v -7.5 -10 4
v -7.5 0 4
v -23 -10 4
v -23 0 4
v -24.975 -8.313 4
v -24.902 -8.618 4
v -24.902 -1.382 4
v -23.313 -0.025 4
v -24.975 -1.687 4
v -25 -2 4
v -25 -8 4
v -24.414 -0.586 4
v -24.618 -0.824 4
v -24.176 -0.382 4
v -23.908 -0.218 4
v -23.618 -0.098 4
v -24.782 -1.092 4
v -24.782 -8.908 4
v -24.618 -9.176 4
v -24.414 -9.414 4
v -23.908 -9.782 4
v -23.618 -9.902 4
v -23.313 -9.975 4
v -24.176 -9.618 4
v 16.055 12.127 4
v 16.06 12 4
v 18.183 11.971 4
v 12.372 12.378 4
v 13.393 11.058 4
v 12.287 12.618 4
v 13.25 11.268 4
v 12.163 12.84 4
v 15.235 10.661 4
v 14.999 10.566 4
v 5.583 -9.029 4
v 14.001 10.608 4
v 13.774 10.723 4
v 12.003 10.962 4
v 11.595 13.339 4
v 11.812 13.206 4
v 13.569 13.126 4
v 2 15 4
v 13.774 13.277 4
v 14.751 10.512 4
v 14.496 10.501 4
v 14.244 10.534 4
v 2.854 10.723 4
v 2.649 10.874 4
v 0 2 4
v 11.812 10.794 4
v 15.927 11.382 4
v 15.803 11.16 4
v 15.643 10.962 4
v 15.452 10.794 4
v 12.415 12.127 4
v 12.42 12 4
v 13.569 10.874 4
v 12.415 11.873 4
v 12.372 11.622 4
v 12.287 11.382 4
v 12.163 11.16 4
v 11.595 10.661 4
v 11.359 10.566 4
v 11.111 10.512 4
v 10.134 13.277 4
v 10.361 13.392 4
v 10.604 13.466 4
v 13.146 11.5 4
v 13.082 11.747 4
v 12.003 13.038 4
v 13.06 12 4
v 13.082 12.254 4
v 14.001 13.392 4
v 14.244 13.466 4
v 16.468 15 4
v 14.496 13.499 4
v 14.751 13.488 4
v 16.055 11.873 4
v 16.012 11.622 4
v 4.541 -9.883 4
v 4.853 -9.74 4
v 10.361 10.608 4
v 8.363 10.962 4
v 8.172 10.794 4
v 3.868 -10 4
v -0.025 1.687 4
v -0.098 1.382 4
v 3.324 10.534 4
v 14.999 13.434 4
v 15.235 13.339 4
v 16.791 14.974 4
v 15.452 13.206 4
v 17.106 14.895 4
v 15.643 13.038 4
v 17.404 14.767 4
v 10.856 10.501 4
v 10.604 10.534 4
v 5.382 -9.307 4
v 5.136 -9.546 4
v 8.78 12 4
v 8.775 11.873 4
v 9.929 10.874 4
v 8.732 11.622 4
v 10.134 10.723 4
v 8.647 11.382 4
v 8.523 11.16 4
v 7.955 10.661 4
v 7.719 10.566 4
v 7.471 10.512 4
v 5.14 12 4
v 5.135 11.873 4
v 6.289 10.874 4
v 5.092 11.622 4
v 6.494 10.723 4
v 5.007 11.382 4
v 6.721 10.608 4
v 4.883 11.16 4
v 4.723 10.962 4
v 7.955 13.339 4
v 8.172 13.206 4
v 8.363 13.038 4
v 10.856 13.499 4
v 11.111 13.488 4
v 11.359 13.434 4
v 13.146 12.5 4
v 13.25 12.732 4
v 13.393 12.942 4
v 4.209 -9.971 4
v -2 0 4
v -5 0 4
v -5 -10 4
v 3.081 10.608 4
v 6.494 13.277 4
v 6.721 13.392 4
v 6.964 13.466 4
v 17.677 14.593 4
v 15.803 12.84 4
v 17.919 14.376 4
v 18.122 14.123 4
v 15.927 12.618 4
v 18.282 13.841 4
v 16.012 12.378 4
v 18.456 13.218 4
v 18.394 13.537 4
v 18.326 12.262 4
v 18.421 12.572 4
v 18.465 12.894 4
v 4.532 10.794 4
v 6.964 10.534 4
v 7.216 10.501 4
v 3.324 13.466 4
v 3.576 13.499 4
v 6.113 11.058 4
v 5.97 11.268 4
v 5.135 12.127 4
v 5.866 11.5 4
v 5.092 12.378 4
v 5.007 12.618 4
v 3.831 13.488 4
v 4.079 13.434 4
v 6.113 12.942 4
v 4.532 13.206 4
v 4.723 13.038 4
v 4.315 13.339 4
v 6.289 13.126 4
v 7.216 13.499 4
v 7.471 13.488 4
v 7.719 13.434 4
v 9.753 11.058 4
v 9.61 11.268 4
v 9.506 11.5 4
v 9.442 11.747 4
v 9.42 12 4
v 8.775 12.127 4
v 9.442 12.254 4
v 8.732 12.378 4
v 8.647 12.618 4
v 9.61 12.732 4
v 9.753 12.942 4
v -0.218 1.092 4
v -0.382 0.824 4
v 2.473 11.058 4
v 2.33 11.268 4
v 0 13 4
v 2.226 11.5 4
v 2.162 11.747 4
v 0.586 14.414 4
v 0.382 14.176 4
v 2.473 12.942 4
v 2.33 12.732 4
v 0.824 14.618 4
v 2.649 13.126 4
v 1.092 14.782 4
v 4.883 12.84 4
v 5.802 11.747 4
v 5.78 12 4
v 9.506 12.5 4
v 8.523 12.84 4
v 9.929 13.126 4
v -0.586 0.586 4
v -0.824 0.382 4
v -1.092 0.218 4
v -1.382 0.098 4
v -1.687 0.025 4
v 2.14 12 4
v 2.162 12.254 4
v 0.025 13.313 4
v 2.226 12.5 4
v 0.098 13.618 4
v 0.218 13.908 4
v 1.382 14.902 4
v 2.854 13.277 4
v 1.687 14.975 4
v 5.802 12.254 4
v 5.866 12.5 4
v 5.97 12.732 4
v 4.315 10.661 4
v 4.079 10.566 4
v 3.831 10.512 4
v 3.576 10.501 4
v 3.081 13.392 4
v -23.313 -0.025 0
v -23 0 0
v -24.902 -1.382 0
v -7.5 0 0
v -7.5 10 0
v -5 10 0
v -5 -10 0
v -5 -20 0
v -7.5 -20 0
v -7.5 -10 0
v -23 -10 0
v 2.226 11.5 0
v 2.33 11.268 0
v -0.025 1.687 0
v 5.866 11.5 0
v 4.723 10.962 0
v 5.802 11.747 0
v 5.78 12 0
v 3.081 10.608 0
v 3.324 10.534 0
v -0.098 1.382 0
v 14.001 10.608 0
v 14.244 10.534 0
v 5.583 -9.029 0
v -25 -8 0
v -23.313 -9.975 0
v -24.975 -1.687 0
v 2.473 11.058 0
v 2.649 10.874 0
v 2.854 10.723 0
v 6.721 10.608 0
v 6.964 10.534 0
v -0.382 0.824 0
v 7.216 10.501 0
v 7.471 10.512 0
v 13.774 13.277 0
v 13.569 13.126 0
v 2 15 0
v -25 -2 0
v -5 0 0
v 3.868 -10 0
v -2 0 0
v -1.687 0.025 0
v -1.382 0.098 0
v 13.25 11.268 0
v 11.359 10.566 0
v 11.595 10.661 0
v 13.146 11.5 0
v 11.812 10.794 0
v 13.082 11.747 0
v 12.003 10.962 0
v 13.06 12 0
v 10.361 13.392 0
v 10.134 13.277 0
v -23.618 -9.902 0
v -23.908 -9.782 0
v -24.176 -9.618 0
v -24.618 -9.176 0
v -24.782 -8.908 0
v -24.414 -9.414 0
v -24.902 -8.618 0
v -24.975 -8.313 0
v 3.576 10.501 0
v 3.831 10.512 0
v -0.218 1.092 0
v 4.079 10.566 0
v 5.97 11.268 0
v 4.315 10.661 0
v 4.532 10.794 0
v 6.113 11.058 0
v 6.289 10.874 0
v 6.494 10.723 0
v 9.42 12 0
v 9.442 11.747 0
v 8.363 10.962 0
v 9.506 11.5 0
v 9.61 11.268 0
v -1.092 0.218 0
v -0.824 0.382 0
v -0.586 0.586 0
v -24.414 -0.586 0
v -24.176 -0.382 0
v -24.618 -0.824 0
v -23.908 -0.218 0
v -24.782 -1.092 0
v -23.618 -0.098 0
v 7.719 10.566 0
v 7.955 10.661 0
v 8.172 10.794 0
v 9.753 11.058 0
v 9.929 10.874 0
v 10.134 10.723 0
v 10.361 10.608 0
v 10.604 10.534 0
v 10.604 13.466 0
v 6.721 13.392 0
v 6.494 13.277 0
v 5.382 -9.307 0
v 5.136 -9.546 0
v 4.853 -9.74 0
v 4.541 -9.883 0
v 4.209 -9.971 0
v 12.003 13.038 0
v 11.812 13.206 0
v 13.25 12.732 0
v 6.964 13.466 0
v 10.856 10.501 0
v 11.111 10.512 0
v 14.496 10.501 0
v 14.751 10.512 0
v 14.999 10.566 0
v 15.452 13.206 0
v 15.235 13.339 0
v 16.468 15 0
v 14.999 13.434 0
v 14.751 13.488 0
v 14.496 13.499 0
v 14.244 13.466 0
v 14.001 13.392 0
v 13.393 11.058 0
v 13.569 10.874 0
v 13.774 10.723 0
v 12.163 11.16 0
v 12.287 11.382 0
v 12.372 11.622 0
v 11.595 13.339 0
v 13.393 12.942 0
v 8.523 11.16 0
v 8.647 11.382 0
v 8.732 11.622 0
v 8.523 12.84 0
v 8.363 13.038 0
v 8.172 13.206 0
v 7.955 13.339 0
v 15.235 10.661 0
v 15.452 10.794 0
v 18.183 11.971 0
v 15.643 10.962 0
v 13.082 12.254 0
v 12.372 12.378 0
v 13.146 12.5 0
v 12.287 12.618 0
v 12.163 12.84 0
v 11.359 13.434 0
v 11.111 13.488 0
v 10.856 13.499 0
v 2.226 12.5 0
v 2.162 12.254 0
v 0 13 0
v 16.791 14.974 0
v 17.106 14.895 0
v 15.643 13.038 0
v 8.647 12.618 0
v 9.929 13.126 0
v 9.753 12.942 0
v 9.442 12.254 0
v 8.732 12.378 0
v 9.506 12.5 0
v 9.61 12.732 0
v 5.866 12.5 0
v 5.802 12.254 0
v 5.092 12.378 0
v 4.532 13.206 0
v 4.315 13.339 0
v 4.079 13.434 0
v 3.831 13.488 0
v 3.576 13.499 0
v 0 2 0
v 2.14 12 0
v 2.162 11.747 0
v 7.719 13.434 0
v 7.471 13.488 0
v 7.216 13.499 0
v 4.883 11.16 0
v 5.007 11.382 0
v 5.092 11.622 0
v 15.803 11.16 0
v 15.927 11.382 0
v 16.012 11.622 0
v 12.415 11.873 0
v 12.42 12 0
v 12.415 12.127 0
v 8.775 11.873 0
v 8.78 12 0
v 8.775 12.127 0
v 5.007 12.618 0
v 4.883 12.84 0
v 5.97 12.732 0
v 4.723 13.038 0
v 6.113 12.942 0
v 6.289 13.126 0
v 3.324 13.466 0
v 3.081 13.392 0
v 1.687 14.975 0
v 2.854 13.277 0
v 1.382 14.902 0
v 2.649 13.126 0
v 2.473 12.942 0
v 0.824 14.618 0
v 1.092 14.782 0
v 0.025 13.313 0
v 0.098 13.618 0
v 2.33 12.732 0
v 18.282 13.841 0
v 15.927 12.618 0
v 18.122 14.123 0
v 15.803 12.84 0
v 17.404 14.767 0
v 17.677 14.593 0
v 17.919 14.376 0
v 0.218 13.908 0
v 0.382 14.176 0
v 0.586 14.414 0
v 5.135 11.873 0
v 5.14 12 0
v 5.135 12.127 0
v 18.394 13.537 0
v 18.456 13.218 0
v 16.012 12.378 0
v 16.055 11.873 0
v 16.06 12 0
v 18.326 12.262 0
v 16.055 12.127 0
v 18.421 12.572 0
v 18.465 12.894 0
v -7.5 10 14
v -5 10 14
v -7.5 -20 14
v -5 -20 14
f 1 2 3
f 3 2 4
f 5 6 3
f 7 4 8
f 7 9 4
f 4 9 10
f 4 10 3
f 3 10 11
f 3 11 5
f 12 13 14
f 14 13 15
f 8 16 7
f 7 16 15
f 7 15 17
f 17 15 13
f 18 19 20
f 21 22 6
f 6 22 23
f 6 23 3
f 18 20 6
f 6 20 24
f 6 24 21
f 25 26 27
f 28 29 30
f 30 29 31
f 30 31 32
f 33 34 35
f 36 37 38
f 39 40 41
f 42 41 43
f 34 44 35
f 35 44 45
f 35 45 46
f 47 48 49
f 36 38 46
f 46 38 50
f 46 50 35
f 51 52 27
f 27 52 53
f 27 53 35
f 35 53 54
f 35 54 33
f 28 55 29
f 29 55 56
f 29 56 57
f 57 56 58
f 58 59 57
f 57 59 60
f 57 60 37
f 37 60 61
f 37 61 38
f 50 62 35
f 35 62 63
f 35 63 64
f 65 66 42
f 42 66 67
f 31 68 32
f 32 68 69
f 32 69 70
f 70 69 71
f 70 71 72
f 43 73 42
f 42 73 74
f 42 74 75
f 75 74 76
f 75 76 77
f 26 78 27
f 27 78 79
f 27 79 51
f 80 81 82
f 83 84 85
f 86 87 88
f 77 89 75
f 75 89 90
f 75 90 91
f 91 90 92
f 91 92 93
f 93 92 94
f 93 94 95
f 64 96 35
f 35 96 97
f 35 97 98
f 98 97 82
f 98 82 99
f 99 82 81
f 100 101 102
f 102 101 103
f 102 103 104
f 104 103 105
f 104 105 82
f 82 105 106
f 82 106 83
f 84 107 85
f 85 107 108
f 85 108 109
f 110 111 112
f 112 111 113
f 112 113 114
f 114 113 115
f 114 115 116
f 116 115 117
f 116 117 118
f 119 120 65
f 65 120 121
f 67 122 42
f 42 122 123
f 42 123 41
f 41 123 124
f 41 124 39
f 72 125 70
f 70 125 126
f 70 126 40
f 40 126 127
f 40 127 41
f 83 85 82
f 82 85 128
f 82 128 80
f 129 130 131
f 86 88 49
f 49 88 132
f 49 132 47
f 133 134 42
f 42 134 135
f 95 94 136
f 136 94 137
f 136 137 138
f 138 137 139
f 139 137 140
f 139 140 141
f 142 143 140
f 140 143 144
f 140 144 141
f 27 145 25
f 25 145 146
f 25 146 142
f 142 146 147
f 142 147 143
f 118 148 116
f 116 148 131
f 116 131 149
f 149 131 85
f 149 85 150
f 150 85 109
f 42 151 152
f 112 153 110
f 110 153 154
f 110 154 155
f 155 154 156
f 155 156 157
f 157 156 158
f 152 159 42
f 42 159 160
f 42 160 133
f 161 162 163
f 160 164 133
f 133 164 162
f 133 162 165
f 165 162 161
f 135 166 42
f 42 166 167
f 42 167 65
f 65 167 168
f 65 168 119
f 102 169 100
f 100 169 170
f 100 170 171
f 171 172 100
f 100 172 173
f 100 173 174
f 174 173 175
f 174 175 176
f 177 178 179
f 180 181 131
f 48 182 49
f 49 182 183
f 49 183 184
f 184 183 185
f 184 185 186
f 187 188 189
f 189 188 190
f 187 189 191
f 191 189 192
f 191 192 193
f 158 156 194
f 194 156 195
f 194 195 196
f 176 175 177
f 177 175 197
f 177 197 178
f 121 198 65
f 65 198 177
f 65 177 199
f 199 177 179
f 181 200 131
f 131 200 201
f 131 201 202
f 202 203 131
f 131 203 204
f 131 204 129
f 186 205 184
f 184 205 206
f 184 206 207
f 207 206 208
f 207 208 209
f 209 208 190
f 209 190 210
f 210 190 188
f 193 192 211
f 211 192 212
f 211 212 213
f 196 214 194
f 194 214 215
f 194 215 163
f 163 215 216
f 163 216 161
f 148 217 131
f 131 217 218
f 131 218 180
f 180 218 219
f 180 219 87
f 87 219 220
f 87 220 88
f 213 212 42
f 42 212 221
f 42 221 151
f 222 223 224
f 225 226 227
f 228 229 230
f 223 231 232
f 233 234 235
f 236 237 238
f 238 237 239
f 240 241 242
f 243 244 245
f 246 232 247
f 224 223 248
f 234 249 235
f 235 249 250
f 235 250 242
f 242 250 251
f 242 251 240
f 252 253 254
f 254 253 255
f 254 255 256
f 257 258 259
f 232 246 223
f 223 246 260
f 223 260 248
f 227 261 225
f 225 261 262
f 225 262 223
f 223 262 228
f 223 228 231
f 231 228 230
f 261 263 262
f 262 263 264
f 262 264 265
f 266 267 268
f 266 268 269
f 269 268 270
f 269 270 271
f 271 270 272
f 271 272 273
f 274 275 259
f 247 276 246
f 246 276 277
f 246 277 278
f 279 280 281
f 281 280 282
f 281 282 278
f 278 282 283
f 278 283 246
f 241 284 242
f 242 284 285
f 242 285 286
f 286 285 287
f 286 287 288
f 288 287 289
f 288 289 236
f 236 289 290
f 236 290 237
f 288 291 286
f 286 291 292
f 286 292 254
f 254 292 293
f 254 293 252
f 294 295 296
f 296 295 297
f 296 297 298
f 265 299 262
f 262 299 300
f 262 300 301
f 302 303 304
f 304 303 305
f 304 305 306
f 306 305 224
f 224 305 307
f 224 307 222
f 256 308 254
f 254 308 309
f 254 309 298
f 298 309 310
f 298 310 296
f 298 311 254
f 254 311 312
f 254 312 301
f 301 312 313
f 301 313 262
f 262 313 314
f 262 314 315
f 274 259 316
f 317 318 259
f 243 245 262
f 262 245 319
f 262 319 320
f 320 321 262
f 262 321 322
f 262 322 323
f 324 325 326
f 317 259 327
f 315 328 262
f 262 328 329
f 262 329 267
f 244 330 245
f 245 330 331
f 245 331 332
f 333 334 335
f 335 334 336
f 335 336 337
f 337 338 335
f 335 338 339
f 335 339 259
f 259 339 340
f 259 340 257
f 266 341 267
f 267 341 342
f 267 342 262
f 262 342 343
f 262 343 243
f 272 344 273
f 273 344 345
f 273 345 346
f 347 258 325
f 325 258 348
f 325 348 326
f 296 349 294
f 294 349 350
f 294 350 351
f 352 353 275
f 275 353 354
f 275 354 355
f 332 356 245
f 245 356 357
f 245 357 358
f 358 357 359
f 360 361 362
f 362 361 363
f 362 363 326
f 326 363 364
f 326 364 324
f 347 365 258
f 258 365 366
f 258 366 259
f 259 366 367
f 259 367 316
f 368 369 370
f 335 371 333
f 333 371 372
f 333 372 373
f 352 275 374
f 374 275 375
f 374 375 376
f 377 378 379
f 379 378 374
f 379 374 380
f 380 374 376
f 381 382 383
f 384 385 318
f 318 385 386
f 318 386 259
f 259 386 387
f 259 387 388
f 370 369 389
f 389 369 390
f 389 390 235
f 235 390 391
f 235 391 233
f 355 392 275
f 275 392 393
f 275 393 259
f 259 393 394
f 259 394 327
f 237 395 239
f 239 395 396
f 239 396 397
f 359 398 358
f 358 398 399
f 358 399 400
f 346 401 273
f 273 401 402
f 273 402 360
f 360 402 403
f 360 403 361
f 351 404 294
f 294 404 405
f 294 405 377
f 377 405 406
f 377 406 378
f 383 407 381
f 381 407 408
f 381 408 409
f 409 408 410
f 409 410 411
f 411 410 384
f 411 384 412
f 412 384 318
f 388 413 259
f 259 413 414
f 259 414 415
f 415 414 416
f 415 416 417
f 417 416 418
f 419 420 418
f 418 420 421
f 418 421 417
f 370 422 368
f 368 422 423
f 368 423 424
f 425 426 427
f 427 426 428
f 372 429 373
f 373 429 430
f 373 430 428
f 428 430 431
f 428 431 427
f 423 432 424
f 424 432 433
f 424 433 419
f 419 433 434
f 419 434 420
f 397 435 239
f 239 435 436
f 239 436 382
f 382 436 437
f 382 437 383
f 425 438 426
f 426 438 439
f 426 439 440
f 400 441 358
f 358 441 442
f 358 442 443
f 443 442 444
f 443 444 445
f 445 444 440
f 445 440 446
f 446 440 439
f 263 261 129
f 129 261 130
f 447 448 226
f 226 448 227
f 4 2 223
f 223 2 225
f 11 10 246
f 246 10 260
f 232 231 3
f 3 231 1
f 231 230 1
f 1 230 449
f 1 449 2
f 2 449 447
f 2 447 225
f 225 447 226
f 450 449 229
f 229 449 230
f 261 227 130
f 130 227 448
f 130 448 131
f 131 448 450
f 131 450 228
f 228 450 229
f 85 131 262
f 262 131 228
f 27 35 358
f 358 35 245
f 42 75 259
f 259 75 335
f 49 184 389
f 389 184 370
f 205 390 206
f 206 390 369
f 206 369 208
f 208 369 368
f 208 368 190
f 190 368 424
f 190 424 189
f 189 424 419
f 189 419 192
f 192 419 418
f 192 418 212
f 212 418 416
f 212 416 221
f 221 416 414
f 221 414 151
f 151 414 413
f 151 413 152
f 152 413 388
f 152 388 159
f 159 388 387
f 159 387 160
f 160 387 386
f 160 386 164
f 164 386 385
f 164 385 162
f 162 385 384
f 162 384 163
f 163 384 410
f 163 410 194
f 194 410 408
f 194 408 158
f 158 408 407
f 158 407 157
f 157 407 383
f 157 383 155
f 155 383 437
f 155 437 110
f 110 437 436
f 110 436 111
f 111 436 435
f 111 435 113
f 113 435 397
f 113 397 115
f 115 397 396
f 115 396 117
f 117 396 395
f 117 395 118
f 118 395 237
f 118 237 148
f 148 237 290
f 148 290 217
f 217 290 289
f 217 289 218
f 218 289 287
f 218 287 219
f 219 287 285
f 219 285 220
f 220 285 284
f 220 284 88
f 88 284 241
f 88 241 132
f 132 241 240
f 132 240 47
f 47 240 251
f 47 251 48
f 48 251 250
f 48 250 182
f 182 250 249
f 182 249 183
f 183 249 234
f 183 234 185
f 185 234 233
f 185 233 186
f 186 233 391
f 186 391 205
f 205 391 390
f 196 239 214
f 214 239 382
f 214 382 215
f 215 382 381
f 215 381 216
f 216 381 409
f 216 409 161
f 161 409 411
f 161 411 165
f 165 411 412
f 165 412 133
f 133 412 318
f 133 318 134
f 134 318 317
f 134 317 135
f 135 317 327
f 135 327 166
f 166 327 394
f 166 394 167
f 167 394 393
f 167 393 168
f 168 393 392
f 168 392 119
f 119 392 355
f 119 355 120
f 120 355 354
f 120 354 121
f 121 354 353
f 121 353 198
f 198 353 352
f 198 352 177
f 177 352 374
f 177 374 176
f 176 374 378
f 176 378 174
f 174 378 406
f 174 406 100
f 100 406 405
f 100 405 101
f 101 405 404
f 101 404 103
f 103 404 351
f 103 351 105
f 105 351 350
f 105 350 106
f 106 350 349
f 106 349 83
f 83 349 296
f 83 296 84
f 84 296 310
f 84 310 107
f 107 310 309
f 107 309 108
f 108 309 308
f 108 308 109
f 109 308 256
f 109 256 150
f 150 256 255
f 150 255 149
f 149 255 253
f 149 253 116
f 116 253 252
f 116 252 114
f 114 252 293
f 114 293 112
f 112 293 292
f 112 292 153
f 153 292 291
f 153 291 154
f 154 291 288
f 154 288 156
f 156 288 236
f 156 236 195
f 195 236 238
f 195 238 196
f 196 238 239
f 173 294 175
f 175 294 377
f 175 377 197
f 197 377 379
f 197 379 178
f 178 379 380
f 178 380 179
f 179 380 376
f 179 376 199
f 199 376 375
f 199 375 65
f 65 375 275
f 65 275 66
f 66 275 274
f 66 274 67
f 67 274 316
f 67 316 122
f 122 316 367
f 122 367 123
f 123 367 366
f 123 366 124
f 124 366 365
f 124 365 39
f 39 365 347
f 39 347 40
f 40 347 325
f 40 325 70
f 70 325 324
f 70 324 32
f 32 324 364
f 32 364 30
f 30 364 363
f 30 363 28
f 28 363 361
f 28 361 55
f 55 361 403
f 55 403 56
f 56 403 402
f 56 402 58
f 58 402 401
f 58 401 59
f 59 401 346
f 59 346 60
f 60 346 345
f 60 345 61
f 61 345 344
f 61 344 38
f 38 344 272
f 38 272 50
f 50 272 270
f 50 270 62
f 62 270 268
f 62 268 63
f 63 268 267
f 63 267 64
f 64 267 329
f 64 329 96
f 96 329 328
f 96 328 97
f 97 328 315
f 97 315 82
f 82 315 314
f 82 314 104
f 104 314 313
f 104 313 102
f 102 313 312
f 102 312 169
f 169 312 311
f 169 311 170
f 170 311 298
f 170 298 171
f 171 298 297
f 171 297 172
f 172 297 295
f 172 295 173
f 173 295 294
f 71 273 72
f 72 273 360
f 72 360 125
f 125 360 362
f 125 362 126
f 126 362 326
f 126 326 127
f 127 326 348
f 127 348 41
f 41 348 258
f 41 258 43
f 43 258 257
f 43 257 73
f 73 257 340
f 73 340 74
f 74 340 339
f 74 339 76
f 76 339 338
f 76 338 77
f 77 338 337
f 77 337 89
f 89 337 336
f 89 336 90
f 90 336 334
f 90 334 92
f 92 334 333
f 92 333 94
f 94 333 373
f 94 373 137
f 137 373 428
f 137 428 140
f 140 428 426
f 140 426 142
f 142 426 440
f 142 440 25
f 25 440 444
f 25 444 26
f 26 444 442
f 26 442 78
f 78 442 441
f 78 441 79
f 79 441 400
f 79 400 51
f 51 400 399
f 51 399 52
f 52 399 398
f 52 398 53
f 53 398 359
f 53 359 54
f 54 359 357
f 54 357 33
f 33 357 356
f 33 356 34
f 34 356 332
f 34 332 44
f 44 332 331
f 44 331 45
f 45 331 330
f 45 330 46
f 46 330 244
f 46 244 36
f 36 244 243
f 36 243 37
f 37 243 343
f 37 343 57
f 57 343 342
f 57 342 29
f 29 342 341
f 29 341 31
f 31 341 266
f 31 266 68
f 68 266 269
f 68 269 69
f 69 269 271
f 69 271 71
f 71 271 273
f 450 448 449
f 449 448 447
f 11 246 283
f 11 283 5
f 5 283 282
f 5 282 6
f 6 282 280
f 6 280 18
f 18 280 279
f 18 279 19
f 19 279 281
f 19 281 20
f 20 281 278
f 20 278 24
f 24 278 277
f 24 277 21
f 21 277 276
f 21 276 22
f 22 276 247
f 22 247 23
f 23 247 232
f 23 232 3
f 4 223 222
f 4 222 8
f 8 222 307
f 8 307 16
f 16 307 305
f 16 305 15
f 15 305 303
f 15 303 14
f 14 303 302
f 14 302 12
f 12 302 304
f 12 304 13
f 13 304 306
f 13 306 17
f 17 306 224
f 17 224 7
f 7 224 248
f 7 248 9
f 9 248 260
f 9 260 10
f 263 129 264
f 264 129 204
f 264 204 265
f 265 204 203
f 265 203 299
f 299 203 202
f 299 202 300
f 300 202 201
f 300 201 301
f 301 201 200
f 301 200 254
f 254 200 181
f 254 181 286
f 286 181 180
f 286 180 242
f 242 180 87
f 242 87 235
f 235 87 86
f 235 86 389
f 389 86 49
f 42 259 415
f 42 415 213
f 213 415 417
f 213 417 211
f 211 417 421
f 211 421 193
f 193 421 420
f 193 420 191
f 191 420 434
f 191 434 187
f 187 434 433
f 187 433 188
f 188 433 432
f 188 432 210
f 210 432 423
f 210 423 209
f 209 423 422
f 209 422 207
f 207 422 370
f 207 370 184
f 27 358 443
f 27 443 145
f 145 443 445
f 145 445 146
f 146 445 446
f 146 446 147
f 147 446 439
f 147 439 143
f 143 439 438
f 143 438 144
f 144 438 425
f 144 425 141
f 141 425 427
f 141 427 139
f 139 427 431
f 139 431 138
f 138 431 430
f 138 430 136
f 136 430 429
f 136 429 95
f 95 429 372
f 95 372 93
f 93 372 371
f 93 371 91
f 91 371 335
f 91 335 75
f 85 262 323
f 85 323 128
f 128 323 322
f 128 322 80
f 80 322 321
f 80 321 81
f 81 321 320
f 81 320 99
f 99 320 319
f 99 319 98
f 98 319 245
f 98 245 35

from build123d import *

# Parameters (mm, degrees)
ESQUISSE1_R        = 1.5
BOSS_EXTRU_1_DEPTH = 4
ESQUISSE2_W        = 2.5
ESQUISSE2_H        = 30
BOSS_EXTRU_2_DEPTH = 10
CONG_1_R           = 2


with BuildPart() as part:
    # Esquisse1 → Boss.-Extru.1 (new body)
    with BuildSketch(Plane.XY):
        Polygon((0, 0), (0, 15), (20, 15), (5, -10), (-5, -10), (-5, -20), (-7.5, -20), (-7.5, -10), (-25, -10), (-25, 0), (-7.5, 0), (-7.5, 10), (-5, 10), (-5, 0), align=None)
        with Locations((3.64, 12)):
            Circle(ESQUISSE1_R, mode=Mode.SUBTRACT)
        with Locations((7.28, 12)):
            Circle(ESQUISSE1_R, mode=Mode.SUBTRACT)
        with Locations((10.92, 12)):
            Circle(ESQUISSE1_R, mode=Mode.SUBTRACT)
        with Locations((14.56, 12)):
            Circle(ESQUISSE1_R, mode=Mode.SUBTRACT)
    extrude(amount=BOSS_EXTRU_1_DEPTH)

    # Esquisse2 → Boss.-Extru.2 (add)
    with BuildSketch(Plane.XY.offset(4)):
        with Locations((-6.25, -5)):
            Rectangle(ESQUISSE2_W, ESQUISSE2_H)
    extrude(amount=BOSS_EXTRU_2_DEPTH)

    # Congé1
    cong_1_edges = [part.edges().sort_by_distance(p)[0] for p in [
        (0, 0, 2),
        (0, 15, 2),
        (20, 15, 2),
        (5, -10, 2),
        (-25, -10, 2),
        (-25, 0, 2),
    ]]
    fillet(cong_1_edges, radius=CONG_1_R)


solid = part.part
